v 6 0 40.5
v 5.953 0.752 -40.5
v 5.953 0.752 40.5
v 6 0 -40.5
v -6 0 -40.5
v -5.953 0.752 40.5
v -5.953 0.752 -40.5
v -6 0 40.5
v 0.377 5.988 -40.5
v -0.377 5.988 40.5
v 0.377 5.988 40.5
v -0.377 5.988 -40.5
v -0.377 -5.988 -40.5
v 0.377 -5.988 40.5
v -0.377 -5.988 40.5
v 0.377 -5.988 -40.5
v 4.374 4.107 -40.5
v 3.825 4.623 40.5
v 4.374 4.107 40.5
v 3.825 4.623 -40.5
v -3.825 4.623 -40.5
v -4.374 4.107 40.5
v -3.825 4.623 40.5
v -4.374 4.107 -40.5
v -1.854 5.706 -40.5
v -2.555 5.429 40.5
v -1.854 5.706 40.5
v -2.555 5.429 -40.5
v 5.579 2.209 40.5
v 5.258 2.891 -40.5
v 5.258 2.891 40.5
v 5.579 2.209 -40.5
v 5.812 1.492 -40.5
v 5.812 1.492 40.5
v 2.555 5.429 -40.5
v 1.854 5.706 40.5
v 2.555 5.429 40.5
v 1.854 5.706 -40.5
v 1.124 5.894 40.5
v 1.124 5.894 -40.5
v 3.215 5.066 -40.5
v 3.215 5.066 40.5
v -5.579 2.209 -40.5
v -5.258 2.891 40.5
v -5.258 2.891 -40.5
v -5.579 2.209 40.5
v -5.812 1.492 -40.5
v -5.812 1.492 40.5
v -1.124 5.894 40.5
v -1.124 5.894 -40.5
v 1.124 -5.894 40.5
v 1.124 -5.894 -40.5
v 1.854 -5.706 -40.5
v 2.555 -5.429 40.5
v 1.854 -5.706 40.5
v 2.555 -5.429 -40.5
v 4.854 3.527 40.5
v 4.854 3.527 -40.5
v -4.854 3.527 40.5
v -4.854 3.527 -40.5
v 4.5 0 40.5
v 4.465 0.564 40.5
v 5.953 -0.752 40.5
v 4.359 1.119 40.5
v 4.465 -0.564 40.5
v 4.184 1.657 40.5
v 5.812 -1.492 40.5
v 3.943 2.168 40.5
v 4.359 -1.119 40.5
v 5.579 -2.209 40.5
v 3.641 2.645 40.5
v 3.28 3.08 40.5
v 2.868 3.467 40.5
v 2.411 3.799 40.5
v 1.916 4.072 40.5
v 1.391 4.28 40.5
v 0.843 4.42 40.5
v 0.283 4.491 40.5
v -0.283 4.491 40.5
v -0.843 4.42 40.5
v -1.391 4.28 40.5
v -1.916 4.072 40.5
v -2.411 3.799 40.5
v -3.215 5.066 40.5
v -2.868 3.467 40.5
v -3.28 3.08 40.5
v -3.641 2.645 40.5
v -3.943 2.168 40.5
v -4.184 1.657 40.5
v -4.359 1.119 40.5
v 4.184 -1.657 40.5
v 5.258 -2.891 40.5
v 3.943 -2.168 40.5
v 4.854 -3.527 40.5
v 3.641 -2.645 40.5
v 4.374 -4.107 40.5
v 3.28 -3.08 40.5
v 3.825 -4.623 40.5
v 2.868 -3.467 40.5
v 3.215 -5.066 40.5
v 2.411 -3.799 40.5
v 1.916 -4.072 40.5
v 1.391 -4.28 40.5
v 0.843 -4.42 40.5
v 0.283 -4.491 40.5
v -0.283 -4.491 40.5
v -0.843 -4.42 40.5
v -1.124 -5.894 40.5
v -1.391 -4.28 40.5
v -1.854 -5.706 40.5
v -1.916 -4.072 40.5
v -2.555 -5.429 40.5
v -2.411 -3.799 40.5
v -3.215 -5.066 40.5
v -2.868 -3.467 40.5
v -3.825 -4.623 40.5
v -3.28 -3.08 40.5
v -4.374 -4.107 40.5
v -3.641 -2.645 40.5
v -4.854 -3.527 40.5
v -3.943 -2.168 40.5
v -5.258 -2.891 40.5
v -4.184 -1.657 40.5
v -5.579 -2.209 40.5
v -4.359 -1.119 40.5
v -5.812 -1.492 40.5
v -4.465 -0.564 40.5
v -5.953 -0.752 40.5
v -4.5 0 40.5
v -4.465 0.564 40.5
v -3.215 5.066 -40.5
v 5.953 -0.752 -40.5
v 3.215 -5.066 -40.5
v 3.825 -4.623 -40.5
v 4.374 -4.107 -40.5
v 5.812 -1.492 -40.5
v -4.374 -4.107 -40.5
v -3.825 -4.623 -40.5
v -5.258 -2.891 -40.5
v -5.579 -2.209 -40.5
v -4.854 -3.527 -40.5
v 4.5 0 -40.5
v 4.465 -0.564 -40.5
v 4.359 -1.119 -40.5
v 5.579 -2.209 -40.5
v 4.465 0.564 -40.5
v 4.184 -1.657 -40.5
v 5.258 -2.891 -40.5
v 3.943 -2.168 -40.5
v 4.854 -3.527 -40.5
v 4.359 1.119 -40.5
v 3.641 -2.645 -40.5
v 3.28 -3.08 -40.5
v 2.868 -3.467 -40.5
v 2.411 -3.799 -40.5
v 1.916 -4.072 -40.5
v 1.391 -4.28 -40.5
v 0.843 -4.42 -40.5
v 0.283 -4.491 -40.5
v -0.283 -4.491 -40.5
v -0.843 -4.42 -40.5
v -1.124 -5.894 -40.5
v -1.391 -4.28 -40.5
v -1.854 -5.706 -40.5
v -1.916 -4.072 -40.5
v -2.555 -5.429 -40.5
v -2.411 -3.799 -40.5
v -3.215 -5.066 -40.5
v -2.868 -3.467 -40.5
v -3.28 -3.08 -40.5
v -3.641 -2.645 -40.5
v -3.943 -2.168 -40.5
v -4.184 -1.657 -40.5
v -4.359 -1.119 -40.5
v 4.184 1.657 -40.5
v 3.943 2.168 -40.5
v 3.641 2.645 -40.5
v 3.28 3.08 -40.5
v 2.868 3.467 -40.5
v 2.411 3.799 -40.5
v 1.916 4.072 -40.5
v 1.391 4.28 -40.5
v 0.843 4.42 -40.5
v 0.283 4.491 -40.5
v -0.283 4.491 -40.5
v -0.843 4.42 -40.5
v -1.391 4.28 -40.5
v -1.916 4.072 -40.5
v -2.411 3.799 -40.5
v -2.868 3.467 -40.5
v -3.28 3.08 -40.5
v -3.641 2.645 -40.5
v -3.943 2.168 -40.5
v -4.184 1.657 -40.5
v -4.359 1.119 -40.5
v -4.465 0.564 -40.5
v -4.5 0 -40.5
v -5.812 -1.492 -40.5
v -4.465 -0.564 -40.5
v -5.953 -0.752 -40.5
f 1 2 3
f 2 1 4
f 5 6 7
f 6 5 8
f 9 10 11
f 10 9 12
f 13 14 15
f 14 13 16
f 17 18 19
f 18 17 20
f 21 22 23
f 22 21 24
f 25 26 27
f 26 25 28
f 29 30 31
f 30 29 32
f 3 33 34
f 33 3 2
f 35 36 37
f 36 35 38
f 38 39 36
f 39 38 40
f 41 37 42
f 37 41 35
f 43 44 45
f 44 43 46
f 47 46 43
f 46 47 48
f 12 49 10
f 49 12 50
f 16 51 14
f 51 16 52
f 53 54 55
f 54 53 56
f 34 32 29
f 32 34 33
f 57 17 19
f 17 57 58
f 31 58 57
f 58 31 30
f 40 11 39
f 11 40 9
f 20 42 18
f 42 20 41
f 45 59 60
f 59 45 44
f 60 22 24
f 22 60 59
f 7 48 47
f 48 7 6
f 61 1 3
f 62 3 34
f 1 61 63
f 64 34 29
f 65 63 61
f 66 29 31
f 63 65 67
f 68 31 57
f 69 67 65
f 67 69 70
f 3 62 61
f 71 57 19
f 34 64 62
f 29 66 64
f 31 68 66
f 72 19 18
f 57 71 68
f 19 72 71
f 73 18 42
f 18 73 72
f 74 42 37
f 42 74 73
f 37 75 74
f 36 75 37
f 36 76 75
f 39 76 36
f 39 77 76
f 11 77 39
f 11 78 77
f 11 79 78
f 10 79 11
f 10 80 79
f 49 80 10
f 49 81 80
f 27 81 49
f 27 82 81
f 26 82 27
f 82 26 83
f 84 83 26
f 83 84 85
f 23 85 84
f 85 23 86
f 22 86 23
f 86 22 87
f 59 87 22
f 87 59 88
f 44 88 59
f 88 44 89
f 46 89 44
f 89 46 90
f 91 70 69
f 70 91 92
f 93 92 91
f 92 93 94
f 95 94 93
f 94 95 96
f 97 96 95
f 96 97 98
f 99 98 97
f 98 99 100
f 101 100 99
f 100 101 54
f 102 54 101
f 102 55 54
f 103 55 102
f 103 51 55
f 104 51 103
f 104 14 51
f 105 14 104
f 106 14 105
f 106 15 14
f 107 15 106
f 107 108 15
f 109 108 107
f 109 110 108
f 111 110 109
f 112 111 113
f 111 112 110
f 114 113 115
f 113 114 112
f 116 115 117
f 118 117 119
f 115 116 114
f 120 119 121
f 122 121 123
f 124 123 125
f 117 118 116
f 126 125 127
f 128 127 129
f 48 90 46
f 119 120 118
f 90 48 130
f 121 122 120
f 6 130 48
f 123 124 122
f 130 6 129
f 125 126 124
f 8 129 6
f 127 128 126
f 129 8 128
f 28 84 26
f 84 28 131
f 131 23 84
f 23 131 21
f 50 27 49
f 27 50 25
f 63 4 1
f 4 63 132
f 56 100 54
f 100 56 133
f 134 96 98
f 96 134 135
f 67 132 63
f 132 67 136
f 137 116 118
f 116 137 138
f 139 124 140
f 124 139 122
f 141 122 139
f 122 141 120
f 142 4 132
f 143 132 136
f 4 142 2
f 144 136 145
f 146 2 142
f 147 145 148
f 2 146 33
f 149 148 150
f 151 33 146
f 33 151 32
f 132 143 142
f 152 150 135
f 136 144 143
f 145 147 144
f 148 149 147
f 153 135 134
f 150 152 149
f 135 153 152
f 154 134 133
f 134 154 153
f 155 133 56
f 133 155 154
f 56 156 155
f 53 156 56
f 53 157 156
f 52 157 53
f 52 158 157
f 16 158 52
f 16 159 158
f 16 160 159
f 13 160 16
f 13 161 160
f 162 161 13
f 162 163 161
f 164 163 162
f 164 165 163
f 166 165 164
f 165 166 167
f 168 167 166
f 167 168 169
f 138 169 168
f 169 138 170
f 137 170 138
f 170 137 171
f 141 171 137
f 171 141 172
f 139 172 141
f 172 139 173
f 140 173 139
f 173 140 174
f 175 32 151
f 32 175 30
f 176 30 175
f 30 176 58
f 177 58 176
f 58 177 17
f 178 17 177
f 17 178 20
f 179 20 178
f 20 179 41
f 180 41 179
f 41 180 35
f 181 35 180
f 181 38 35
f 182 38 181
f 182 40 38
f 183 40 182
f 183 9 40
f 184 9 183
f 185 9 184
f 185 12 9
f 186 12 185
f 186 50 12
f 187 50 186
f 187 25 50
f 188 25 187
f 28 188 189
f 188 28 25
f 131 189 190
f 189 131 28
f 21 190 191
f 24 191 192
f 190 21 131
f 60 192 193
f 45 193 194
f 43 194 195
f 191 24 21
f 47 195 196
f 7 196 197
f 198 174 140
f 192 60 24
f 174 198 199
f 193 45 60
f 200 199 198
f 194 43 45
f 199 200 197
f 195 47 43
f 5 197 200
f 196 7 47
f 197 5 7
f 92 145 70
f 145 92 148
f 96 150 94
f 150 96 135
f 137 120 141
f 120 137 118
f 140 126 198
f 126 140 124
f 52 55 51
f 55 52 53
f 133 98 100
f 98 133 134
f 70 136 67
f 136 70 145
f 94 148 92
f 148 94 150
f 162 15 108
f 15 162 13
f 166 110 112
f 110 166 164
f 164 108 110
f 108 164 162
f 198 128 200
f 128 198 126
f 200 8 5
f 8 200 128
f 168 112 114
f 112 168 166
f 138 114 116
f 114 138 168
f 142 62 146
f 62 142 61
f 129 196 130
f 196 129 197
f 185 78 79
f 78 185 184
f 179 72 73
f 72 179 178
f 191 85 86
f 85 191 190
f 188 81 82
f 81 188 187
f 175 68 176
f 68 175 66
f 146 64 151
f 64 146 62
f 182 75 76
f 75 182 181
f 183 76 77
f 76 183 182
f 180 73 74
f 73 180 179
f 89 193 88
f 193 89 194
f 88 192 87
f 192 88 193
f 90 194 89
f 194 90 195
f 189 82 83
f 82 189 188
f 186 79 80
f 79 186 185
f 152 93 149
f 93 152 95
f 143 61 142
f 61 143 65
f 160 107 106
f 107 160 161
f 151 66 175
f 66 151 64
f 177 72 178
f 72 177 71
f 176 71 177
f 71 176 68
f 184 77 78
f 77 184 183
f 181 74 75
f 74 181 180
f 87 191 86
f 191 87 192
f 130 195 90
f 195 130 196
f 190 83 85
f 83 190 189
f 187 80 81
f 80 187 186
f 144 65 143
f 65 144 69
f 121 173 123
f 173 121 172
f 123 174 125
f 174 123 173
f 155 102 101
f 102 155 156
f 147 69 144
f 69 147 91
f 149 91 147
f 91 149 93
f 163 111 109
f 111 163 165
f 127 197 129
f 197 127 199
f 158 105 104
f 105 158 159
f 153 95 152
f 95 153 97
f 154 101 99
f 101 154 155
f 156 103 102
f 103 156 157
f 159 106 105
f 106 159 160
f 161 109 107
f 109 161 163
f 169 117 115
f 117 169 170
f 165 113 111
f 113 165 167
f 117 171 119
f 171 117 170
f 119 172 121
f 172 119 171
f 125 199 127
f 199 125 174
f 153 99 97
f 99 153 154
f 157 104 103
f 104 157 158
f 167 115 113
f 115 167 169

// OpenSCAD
$fn = 50;


difference() {
	union() {
		translate(v = [0, 0, -40.5000000000]) {
			cylinder(h = 81, r = 6.0000000000);
		}
	}
	union() {
		translate(v = [0, 0, -100.0000000000]) {
			cylinder(h = 200, r = 4.5000000000);
		}
	}
}
